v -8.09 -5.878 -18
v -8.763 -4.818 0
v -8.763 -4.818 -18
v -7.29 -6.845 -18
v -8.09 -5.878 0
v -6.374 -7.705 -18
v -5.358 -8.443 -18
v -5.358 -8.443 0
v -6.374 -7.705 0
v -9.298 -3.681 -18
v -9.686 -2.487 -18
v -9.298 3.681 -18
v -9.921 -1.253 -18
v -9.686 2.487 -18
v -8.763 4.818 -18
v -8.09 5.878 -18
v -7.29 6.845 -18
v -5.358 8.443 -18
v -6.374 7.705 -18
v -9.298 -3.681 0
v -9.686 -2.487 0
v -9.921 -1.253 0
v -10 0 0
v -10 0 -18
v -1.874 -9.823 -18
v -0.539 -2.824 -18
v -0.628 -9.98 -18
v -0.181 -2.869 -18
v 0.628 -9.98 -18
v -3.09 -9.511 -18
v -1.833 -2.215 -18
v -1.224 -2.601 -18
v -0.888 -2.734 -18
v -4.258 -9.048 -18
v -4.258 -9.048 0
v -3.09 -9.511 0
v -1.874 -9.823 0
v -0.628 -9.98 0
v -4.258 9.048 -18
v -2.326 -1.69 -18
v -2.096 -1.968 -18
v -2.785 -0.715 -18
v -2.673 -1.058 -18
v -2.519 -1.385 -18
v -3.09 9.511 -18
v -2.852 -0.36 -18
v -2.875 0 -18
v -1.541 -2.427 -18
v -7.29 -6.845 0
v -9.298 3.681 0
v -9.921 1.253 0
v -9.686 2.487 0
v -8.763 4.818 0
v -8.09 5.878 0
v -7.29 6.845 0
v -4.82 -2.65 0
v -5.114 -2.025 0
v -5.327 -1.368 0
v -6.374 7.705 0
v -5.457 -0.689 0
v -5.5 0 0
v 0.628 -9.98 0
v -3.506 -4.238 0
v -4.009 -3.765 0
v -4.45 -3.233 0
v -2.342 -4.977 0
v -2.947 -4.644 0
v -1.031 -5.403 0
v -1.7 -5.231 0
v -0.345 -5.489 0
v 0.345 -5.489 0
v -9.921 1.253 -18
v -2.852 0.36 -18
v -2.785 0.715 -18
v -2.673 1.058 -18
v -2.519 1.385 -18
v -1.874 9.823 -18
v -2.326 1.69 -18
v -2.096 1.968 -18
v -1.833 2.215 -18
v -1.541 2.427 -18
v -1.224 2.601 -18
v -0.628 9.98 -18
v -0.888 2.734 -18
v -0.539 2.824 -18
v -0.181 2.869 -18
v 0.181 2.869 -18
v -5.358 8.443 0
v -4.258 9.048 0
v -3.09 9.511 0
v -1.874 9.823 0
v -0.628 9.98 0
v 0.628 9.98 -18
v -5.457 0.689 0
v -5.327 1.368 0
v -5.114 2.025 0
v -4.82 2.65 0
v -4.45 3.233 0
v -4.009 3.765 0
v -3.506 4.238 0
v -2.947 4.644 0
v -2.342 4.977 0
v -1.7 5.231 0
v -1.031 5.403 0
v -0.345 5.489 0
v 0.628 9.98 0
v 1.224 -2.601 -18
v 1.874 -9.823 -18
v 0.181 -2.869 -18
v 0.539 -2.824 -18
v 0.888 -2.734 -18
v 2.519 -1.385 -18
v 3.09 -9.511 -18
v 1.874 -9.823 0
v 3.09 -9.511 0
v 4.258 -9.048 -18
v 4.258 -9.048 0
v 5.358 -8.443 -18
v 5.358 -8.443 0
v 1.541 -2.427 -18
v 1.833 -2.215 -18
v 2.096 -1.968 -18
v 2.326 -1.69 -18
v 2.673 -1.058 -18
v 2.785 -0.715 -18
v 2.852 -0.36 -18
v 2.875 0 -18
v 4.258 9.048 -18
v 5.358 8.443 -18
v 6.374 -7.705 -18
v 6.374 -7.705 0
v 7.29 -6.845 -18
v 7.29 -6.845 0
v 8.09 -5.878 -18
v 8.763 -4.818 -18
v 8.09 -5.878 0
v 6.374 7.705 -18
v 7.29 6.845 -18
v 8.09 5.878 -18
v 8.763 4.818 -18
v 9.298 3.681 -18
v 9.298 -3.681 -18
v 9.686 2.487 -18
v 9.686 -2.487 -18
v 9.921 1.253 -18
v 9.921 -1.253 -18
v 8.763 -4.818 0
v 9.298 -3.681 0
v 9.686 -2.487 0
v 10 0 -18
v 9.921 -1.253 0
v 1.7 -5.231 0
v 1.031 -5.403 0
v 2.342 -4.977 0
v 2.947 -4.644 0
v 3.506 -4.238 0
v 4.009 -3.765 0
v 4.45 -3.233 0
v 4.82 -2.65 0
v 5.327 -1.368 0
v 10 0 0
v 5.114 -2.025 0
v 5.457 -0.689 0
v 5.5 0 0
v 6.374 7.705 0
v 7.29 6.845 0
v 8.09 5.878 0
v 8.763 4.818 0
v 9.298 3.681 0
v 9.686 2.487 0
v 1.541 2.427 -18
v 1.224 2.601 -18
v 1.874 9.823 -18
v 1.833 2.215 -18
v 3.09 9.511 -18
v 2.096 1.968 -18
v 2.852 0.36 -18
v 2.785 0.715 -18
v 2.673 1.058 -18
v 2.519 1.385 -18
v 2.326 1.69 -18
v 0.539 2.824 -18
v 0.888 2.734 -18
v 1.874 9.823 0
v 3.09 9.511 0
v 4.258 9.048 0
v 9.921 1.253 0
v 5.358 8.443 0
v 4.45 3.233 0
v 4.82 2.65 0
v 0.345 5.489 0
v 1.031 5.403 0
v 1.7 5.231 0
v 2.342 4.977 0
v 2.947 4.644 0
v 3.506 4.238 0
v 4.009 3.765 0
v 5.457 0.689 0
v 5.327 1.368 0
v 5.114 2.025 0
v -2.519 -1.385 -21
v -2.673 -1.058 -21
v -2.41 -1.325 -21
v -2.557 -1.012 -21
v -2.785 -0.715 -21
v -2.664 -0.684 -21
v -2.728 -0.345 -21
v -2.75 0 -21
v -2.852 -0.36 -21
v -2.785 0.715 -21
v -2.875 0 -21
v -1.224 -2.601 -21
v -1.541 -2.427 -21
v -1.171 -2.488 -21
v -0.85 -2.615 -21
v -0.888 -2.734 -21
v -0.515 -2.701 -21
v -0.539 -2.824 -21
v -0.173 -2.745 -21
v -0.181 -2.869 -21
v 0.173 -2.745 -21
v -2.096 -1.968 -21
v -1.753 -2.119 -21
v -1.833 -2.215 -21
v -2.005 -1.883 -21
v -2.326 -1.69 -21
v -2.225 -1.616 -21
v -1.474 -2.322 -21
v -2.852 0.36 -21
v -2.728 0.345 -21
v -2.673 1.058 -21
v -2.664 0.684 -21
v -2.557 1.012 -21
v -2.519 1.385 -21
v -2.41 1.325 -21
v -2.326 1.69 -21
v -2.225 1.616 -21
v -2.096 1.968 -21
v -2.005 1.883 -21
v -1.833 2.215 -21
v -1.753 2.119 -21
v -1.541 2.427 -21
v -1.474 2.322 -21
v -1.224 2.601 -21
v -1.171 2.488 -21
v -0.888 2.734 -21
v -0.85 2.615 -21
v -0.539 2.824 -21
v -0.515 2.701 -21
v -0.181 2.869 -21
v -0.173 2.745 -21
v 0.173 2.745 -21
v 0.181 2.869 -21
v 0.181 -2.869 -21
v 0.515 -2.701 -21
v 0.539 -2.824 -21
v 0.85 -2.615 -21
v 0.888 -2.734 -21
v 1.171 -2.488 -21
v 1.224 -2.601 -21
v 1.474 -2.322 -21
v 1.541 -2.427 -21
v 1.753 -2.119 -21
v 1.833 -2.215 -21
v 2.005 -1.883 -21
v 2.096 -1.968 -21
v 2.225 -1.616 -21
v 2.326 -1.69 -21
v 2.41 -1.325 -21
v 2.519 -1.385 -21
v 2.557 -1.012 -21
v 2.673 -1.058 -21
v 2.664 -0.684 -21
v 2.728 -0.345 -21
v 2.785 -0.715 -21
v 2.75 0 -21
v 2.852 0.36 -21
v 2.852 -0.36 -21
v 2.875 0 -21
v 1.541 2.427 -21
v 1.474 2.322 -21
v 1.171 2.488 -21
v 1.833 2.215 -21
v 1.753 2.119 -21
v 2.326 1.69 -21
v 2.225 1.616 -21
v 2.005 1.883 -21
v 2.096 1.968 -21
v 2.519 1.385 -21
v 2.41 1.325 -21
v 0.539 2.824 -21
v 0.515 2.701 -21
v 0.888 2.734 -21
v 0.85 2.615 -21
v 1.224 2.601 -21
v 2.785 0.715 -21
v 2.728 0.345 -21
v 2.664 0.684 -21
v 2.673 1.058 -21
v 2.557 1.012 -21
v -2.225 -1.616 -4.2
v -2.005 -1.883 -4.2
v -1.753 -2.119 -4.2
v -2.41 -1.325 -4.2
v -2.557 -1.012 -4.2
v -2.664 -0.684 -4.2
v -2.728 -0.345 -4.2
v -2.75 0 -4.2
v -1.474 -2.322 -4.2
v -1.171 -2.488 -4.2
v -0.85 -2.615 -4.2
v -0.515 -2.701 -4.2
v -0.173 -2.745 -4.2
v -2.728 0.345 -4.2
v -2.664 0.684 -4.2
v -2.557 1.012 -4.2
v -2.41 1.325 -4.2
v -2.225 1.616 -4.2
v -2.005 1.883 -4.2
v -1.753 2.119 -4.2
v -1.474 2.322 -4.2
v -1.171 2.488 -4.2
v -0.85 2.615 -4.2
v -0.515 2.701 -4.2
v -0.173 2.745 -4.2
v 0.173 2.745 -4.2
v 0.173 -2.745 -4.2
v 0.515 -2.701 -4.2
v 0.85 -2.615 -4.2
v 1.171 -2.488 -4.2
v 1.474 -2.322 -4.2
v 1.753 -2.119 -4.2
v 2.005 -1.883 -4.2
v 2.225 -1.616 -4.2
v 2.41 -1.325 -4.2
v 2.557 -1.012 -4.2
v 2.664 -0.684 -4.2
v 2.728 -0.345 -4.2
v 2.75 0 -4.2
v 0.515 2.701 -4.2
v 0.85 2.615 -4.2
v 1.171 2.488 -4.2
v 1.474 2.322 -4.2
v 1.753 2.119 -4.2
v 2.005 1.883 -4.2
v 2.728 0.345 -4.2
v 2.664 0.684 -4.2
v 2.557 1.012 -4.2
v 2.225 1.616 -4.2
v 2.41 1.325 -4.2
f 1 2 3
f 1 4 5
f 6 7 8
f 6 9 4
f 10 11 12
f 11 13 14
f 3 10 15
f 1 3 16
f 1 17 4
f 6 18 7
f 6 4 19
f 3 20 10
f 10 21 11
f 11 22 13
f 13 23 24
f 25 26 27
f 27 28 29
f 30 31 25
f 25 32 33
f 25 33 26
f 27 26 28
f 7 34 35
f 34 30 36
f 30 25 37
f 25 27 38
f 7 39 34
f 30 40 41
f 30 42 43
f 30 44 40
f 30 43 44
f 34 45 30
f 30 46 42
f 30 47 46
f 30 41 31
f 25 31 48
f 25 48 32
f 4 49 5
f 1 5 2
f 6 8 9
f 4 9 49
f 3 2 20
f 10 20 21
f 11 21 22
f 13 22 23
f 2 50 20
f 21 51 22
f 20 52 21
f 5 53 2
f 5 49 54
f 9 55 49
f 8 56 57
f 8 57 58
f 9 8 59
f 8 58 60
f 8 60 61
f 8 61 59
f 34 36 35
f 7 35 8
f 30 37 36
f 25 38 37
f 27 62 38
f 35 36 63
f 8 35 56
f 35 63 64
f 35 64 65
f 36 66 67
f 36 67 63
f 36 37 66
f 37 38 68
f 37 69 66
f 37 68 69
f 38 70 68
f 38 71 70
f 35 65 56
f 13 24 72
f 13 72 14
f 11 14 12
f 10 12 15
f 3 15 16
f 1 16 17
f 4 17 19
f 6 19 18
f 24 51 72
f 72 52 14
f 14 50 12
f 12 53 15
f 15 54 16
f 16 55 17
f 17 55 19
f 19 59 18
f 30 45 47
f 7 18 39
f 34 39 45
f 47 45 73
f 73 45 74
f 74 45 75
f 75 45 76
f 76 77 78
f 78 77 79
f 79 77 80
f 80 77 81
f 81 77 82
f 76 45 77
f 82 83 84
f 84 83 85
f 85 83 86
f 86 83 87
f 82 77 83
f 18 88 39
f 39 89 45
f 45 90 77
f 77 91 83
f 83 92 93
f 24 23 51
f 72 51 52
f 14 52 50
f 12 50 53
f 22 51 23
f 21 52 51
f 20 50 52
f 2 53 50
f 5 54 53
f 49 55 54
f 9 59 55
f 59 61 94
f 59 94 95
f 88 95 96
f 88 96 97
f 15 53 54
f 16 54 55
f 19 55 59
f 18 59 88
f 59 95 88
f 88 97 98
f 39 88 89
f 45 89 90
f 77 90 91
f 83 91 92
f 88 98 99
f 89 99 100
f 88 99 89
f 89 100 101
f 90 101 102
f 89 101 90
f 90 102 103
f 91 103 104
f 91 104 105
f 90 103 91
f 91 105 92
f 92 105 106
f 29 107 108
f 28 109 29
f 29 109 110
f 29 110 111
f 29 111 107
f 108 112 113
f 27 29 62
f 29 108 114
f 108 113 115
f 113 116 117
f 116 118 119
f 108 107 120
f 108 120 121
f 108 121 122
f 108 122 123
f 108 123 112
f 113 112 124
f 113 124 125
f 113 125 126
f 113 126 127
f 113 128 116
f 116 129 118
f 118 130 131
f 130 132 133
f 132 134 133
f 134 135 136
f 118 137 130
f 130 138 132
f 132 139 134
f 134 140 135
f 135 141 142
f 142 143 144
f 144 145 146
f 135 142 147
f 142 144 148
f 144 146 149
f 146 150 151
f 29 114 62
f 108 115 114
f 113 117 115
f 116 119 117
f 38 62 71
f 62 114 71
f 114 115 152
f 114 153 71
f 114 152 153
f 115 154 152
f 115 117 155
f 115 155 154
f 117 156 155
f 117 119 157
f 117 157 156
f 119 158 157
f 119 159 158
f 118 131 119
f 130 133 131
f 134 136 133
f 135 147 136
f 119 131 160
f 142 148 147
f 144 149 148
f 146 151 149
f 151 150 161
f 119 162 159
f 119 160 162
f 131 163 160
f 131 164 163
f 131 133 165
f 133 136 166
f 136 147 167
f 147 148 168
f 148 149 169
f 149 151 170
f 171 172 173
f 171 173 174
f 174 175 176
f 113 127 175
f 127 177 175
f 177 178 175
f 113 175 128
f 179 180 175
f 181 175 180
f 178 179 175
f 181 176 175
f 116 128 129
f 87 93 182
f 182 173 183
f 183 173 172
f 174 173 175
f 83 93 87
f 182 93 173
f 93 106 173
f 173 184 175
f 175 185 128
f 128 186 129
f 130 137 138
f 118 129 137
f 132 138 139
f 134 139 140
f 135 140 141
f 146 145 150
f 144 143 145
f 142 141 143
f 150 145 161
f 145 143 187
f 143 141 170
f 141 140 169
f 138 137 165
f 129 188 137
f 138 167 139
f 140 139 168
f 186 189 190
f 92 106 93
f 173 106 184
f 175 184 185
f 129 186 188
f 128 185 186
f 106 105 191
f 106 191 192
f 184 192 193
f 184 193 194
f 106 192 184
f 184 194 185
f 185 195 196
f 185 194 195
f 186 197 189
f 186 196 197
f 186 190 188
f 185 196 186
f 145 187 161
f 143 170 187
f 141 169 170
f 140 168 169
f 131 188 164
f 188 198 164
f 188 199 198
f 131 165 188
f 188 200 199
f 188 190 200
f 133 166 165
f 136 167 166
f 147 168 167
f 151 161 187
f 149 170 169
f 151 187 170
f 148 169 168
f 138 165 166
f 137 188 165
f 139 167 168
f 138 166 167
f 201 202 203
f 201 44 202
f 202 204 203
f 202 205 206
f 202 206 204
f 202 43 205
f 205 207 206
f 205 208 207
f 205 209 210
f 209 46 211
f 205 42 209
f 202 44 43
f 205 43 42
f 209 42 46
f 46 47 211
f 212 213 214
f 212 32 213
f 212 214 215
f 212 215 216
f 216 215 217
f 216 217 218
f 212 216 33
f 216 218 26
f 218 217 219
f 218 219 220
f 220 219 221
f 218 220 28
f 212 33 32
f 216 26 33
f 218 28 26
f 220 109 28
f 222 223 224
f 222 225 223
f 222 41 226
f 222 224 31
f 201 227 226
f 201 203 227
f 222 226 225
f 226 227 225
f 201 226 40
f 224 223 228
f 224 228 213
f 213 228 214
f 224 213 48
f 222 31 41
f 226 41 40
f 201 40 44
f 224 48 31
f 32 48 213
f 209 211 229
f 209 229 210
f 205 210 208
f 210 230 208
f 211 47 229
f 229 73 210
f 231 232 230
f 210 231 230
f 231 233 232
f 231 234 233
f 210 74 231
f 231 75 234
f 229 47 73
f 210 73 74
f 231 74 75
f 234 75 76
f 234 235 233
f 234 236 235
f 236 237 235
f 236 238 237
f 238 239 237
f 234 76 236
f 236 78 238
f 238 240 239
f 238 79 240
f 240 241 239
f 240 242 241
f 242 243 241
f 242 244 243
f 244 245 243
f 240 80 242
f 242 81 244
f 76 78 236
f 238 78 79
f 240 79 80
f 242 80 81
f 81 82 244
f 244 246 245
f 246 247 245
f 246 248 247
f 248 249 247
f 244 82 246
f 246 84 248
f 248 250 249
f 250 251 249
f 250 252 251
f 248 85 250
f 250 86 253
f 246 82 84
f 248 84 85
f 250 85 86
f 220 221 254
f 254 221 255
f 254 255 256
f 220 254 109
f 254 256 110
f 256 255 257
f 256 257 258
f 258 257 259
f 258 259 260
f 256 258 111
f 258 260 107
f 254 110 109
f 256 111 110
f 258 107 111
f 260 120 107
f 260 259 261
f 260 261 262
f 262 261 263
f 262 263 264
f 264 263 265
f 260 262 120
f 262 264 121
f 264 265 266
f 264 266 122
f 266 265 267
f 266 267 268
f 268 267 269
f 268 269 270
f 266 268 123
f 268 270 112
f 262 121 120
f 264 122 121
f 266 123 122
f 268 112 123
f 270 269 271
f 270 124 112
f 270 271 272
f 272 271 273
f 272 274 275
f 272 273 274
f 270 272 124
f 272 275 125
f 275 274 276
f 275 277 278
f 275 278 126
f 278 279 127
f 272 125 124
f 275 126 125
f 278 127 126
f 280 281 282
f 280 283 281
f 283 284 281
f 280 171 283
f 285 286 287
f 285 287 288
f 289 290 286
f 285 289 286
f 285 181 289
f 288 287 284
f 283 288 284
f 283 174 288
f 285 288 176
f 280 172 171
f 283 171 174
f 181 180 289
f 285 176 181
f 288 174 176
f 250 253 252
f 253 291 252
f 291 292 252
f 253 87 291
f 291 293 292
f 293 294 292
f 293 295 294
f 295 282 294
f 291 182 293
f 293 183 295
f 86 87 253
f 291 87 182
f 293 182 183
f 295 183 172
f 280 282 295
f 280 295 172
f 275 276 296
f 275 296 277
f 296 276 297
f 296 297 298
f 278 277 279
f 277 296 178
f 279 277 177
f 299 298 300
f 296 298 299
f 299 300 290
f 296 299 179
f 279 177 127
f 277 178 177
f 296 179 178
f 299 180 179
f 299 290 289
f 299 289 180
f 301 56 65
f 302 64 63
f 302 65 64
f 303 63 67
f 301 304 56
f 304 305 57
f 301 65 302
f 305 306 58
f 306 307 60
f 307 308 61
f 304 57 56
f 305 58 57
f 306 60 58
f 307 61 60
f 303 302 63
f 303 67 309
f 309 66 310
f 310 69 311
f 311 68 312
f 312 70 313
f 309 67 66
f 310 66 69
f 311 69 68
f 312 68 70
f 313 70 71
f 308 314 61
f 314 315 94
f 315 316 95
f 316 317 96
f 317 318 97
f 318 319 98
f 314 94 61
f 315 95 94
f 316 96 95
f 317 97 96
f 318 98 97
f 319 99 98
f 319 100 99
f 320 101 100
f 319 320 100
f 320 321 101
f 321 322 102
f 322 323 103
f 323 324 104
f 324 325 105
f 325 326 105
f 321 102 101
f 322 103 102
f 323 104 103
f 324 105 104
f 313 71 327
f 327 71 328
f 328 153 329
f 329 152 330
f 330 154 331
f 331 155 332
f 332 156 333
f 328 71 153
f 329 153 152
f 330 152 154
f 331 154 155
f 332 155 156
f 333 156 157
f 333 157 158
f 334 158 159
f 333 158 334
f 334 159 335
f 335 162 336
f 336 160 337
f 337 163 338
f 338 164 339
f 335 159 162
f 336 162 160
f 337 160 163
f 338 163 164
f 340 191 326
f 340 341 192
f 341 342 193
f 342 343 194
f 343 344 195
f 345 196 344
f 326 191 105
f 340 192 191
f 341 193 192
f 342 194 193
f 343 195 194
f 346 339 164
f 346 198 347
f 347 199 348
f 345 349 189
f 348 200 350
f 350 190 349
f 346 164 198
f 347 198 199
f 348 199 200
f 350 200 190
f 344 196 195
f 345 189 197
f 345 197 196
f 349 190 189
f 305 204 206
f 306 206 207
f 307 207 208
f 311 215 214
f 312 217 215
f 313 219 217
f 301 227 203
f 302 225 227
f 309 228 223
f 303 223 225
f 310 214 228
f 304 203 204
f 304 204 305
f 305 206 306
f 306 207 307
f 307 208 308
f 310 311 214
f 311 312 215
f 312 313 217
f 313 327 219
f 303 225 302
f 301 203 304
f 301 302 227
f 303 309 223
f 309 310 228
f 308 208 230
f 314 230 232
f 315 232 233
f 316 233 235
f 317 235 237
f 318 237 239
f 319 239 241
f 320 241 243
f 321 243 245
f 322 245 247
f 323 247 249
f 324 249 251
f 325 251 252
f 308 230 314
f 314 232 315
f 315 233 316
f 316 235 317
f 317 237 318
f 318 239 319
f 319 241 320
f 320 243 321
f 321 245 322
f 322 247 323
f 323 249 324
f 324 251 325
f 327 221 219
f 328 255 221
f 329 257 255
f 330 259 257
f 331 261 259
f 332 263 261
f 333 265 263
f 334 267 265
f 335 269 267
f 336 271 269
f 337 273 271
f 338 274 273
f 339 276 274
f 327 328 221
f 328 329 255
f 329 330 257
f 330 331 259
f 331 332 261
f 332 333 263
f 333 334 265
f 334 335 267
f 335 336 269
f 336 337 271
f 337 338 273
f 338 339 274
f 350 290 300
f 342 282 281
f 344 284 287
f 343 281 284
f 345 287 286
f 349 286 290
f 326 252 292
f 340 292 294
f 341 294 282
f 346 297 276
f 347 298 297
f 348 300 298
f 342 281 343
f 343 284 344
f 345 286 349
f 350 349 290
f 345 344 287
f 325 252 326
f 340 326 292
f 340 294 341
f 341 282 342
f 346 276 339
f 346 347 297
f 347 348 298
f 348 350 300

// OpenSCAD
$fn = 50;


difference() {
	union() {
		translate(v = [0, 0, -18.0000000000]) {
			cylinder(h = 18, r = 10.0000000000);
		}
		#translate(v = [0, 0, -21.0000000000]) {
			cylinder(h = 21, r = 2.8750000000);
		}
	}
	union() {
		translate(v = [0, 0, 0]) {
			rotate(a = [0, 0, 0]) {
				difference() {
					union() {
						translate(v = [0, 0, -21.0000000000]) {
							cylinder(h = 21, r = 2.2500000000);
						}
						translate(v = [0, 0, -4.2000000000]) {
							cylinder(h = 4.2000000000, r1 = 2.7500000000, r2 = 5.5000000000);
						}
						translate(v = [0, 0, -21.0000000000]) {
							cylinder(h = 21, r = 2.7500000000);
						}
						translate(v = [0, 0, -21.0000000000]) {
							cylinder(h = 21, r = 2.2500000000);
						}
					}
					union();
				}
			}
		}
	}
}
